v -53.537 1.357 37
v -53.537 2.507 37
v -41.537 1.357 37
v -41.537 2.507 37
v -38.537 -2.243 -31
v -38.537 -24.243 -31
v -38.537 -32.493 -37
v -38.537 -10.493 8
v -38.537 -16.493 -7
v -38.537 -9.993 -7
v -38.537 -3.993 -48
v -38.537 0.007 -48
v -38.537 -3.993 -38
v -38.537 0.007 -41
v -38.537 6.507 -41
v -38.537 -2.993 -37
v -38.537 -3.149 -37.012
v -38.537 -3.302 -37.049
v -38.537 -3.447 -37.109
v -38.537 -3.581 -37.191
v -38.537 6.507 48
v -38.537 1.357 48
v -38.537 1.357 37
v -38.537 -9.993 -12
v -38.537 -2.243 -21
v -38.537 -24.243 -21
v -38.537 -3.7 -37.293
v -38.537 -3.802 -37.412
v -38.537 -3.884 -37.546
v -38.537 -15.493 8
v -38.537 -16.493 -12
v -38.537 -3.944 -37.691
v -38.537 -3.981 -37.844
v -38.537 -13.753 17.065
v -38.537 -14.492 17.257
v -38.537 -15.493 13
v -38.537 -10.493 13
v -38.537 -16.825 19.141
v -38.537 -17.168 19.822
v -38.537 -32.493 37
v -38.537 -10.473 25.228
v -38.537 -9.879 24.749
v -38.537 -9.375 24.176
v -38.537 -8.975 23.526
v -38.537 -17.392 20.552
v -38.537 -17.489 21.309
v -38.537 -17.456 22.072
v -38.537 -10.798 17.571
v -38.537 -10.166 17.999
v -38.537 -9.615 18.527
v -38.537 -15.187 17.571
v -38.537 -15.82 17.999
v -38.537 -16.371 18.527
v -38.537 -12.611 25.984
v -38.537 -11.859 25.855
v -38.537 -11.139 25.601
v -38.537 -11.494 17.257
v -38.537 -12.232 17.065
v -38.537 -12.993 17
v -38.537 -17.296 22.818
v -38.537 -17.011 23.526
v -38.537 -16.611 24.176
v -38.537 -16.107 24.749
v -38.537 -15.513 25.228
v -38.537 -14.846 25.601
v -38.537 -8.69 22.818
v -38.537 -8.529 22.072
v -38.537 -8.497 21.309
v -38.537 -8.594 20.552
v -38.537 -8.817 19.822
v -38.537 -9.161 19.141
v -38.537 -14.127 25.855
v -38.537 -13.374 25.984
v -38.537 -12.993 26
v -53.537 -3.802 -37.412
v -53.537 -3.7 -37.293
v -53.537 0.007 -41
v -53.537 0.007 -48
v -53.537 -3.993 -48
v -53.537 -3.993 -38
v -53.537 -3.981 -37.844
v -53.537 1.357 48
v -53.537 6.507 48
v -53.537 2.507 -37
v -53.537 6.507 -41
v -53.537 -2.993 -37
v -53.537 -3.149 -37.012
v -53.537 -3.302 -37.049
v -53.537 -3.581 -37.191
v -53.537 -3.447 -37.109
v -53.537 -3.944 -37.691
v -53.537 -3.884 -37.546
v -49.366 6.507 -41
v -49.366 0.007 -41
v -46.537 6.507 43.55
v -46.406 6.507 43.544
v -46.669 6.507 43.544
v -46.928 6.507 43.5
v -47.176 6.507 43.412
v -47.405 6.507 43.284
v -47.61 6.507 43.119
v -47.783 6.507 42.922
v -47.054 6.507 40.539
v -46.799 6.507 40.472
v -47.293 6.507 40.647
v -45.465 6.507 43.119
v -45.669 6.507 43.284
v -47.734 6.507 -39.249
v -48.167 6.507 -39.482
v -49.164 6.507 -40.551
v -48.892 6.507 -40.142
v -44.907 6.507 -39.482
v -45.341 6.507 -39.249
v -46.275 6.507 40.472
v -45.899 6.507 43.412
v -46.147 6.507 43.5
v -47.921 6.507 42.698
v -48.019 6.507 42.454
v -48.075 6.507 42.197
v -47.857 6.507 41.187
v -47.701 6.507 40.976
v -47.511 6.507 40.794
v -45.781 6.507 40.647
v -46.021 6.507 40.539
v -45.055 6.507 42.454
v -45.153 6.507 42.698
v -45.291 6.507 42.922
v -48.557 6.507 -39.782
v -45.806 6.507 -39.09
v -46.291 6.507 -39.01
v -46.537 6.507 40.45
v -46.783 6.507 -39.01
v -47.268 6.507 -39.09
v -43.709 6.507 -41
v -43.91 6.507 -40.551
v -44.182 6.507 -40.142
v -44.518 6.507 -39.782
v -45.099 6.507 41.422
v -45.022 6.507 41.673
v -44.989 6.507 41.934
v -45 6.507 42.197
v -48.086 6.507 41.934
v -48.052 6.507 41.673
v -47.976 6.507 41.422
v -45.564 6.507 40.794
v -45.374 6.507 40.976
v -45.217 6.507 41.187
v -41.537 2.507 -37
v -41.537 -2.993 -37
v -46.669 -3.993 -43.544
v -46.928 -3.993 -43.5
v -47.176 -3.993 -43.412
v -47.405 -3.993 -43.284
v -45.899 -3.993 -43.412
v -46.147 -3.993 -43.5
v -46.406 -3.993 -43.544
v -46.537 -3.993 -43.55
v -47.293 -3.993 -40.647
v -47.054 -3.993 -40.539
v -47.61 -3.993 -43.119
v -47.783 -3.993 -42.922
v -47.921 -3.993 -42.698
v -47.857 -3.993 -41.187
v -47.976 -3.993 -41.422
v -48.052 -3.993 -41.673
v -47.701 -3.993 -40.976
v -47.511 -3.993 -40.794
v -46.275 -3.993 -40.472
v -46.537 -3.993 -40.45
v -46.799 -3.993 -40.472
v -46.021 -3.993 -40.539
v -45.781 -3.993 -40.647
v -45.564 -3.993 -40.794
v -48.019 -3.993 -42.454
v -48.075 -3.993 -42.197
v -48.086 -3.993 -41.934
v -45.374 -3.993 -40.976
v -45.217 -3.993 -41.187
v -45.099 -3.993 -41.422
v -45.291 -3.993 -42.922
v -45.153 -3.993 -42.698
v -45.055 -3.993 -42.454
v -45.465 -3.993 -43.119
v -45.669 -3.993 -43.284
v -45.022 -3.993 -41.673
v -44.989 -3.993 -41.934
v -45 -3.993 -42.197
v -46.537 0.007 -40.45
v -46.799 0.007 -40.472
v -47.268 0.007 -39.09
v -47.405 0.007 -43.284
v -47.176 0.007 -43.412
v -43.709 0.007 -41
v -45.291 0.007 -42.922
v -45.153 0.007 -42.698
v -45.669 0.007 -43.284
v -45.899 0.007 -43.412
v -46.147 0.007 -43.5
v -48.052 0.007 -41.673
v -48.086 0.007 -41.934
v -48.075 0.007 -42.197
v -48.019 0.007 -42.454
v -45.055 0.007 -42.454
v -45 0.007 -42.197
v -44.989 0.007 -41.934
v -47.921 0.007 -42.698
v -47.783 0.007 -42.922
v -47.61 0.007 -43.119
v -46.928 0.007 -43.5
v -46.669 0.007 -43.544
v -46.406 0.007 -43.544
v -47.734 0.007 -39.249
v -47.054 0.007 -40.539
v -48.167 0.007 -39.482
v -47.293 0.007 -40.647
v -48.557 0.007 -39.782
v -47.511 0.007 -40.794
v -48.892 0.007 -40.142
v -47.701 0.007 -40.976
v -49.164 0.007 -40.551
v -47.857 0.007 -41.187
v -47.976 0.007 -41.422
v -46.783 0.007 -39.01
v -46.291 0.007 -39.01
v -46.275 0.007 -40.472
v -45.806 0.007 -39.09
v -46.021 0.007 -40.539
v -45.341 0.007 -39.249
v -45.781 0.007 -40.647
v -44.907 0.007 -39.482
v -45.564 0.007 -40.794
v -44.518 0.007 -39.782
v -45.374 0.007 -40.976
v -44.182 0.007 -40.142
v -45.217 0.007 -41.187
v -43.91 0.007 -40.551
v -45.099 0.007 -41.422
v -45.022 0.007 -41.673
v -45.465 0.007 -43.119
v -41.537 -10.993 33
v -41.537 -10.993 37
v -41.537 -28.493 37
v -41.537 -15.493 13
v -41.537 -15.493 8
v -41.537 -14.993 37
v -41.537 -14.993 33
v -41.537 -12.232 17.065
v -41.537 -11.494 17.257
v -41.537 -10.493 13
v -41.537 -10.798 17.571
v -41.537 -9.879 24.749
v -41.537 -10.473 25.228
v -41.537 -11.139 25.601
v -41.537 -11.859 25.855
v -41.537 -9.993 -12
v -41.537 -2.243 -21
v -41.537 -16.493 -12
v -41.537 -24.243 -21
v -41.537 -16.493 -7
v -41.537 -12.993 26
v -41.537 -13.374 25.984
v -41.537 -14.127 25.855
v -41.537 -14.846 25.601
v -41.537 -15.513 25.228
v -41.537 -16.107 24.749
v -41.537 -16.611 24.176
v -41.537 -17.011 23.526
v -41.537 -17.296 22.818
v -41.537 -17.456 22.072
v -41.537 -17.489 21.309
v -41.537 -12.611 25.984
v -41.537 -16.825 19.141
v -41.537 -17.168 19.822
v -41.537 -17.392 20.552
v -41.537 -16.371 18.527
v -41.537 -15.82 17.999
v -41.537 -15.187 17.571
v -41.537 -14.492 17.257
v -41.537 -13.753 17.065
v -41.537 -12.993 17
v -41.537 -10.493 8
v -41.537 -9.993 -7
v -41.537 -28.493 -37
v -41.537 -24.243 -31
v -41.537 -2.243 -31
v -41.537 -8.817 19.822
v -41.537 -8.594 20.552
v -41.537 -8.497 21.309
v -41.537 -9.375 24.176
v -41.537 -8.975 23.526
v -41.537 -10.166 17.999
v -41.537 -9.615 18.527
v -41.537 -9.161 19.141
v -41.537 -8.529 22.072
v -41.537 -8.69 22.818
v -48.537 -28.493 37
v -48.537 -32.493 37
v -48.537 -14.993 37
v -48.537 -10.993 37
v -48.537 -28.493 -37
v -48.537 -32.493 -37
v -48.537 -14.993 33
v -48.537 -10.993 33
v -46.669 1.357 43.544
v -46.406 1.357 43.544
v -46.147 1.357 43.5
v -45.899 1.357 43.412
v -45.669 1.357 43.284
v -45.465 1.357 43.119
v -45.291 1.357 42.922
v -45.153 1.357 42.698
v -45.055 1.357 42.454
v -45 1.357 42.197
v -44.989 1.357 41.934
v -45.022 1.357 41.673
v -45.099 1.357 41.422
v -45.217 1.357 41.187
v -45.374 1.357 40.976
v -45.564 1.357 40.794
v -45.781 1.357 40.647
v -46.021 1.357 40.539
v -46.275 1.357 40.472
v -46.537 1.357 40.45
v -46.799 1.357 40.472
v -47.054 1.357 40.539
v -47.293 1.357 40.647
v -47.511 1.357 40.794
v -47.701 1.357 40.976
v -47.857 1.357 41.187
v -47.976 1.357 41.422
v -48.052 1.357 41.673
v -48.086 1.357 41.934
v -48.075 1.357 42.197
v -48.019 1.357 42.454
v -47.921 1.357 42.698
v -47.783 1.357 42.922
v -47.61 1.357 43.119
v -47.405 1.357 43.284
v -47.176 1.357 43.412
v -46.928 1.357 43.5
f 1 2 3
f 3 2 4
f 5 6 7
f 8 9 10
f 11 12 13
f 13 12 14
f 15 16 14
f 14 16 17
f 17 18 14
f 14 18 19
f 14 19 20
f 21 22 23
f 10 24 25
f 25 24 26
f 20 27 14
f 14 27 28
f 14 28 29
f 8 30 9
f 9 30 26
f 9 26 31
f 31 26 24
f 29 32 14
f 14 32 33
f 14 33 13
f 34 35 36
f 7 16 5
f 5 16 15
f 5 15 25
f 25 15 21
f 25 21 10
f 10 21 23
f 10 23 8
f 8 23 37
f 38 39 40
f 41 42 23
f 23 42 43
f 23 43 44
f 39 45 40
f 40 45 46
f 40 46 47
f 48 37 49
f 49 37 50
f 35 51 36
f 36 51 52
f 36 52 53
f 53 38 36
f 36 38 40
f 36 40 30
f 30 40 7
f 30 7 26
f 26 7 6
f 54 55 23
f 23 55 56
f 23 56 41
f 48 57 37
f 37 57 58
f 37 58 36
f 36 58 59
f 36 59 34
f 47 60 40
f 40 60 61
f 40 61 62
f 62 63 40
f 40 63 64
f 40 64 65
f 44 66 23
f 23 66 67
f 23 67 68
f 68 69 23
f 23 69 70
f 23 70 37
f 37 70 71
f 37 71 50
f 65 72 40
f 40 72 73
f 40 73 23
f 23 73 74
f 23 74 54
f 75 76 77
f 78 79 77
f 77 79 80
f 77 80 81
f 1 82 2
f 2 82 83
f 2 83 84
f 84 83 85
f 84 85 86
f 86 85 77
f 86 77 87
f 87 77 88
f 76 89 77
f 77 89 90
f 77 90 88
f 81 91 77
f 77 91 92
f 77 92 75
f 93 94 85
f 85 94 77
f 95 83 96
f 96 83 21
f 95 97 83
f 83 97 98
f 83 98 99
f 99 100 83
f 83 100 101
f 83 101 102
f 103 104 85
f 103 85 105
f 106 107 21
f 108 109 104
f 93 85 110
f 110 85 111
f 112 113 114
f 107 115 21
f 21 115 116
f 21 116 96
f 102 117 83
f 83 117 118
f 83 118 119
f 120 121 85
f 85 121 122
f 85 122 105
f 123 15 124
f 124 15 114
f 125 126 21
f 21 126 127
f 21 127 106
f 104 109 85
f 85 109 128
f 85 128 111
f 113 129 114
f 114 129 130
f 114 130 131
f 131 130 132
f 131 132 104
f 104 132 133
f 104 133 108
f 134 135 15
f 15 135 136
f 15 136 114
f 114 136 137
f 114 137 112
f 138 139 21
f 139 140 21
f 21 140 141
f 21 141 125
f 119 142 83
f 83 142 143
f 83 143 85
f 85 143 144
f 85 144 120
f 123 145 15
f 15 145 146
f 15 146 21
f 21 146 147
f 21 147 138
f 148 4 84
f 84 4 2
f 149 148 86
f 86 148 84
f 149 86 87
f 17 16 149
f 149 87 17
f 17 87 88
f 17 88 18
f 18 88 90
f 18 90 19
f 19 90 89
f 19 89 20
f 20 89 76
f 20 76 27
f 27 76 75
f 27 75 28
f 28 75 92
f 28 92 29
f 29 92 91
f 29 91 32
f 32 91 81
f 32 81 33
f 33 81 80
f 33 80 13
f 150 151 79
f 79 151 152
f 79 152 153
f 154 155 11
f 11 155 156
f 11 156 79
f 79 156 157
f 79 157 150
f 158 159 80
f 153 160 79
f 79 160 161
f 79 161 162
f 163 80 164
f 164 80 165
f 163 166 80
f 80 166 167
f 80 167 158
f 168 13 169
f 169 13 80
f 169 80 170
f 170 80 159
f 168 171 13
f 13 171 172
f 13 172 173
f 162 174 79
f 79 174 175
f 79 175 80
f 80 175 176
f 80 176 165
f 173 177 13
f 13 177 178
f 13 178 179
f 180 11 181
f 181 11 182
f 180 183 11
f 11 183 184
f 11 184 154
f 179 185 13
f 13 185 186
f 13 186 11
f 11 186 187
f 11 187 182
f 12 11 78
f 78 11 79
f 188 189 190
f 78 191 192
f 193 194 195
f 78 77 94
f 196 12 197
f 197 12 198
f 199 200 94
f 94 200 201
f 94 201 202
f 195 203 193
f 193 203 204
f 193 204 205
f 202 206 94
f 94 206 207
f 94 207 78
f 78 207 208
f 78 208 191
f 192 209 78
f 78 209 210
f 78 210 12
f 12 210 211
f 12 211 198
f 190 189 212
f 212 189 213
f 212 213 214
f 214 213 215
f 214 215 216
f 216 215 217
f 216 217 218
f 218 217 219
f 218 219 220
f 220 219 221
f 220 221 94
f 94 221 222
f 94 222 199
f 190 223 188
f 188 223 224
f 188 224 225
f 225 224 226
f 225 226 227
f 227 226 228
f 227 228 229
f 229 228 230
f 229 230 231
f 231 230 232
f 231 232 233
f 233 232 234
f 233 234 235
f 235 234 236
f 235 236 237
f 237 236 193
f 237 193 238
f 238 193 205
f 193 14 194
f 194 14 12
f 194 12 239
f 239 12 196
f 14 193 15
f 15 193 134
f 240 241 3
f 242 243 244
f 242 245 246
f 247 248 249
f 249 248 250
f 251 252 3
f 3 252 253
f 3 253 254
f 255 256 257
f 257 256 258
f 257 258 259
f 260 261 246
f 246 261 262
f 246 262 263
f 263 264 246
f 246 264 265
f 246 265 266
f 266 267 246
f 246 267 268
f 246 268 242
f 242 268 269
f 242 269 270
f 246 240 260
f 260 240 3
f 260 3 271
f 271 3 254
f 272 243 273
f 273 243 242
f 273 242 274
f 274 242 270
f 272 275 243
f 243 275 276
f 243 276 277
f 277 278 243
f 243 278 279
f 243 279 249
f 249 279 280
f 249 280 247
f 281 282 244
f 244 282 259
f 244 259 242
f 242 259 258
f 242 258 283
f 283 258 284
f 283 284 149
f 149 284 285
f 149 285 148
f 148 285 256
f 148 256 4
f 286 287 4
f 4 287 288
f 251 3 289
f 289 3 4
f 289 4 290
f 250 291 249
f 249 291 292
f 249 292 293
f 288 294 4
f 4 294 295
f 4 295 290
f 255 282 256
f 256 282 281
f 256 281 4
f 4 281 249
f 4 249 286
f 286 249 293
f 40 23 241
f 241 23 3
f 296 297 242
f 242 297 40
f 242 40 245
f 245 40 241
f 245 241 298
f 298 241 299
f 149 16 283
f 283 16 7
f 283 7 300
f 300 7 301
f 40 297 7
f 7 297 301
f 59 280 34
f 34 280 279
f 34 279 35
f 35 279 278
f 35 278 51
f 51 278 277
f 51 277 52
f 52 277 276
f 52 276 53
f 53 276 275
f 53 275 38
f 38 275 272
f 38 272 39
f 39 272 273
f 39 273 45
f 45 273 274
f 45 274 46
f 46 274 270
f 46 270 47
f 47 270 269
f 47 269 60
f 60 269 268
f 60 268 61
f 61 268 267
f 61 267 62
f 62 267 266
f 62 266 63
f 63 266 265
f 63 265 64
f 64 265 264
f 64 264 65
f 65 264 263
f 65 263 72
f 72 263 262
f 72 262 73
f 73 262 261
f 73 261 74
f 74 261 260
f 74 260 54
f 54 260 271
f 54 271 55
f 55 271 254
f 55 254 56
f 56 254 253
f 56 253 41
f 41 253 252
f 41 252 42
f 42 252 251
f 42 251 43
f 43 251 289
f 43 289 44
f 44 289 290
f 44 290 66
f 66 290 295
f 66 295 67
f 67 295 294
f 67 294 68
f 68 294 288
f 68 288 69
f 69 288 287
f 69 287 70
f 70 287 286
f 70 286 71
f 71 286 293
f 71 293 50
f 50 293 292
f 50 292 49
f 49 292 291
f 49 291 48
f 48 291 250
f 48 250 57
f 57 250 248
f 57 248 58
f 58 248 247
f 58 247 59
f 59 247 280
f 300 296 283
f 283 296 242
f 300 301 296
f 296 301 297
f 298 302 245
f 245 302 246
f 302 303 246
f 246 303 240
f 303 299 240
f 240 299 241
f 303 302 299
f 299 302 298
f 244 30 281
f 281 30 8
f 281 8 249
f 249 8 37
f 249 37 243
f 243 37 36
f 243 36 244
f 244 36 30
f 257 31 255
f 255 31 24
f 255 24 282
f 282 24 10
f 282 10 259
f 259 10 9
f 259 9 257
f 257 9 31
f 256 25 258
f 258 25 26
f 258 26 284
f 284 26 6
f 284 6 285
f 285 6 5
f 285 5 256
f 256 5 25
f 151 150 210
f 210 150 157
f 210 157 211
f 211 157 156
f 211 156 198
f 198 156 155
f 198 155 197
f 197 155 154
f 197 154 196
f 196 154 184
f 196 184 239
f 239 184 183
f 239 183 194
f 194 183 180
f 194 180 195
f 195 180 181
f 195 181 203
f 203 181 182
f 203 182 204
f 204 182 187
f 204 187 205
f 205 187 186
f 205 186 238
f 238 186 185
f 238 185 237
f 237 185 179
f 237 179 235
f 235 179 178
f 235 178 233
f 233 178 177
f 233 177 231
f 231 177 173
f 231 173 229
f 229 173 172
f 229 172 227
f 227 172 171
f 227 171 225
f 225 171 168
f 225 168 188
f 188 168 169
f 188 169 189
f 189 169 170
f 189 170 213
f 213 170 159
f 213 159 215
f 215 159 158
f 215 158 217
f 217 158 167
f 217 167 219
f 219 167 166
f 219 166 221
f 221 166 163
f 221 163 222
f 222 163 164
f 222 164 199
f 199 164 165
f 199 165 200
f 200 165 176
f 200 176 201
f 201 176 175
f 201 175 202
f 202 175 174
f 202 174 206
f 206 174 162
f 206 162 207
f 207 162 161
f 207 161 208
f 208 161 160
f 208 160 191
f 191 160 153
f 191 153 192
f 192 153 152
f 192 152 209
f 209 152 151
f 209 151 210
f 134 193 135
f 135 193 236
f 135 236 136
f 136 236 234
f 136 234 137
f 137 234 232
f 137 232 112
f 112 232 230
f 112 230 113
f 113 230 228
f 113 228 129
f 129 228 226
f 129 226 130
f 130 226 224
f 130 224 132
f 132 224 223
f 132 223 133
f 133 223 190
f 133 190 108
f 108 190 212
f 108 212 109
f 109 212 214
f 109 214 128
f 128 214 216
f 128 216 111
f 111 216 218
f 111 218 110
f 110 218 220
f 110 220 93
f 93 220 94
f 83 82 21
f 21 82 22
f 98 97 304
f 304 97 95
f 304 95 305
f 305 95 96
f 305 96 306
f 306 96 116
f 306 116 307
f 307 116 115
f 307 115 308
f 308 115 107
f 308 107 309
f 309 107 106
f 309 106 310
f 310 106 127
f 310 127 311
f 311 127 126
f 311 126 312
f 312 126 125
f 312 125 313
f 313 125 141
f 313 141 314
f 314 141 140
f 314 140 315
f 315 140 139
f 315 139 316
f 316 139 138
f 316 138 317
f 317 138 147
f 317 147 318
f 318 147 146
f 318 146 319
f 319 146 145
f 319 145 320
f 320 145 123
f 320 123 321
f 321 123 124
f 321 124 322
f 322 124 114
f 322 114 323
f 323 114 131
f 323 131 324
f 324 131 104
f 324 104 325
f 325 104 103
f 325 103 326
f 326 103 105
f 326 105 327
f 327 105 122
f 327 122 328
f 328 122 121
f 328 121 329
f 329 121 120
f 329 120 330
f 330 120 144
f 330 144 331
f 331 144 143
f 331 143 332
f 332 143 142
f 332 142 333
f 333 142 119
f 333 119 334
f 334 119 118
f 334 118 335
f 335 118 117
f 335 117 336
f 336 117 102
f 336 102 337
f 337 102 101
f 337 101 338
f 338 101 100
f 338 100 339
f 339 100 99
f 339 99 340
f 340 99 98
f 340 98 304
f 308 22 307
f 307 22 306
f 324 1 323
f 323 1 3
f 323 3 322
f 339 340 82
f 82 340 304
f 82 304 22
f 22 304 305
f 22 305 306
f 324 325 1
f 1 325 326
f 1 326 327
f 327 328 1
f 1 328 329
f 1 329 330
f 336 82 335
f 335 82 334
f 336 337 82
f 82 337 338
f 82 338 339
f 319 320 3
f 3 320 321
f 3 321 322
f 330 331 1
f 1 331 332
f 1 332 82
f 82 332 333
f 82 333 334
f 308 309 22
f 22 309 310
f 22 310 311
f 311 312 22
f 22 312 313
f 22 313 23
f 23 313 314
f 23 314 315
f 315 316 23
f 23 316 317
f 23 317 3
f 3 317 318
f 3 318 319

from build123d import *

# Parameters (mm, degrees)
EXTRUDE_START       = -12
EXTRUDE_1_DEPTH     = 12
SKETCH_2_R          = 4.5
EXTRUDE_2_DEPTH     = 3
SKETCH_3_W          = 74
SKETCH_3_H          = 4
SKETCH_3_W_2        = 4
EXTRUDE_3_DEPTH     = 7
SKETCH_4_W          = 5
SKETCH_4_H          = 6.5
SKETCH_4_H_2        = 5
SKETCH_4_W_2        = 10
SKETCH_4_H_3        = 22
CUT_EXTRUDE_1_DEPTH = 7
SKETCH_5_R          = 1.55
CUT_EXTRUDE_2_DEPTH = 7
SKETCH_6_R          = 3
CUT_EXTRUDE_4_DEPTH = 7
SKETCH_8_W          = 123.006467786
SKETCH_8_H          = 80.173858468
CUT_EXTRUDE_6_DEPTH = 15
SKETCH_11_R         = 1.55
EXTRUDE_5_DEPTH     = 5.15
CUT_EXTRUDE_8_REACH = 107.579
SKETCH_12_W         = 15.113452747
SKETCH_12_H         = 5.35


# Read off the part's stored shape, not the designer's step: 填料-伸長1
with BuildPart() as part:
    # 填料-伸長1 outline → 填料-伸長1 (new body)
    with BuildSketch(Plane.ZY.offset(65.537274581).offset(EXTRUDE_START)):
        with BuildLine():
            Line((41, 0.007142857), (41, 6.507142857))
            Line((41, 6.507142857), (-41, 6.507142857))
            Line((-41, 6.507142857), (-41, 0.007142857))
            Line((-41, 0.007142857), (-48, 0.007142857))
            Line((-48, 0.007142857), (-48, -3.992857143))
            Line((-48, -3.992857143), (-38, -3.992857143))
            ThreePointArc((-38, -3.992857143), (-37.292893219, -3.699963924), (-37, -2.992857143))
            Line((-37, -2.992857143), (-37, 2.507142857))
            Line((-37, 2.507142857), (37, 2.507142857))
            Line((37, 2.507142857), (37, -2.992857143))
            ThreePointArc((37, -2.992857143), (37.292893219, -3.699963924), (38, -3.992857143))
            Line((38, -3.992857143), (48, -3.992857143))
            Line((48, -3.992857143), (48, 0.007142857))
            Line((48, 0.007142857), (41, 0.007142857))
        make_face()
    extrude(amount=EXTRUDE_1_DEPTH)

    # 草圖2 → 填料-伸長2 (add)
    # profile 1 of 2: a face of its own
    with BuildSketch(Plane.ZY.offset(65.537274581)):
        Polygon((37, 2.507142857), (-37, 2.507142857), (-37, -2.992857143), (-37, -32.492857143), (37, -32.492857143), (37, -2.992857143), align=None)
        with Locations((21.5, -12.992857143)):
            Circle(SKETCH_2_R, mode=Mode.SUBTRACT)
    # profile 2 of 2: a face of its own
    with BuildSketch(Plane.ZY.offset(65.537274581)):
        with BuildLine():
            Line((41, 0.007142857), (41, 6.507142857))
            Line((41, 6.507142857), (-41, 6.507142857))
            Line((-41, 6.507142857), (-41, 0.007142857))
            Line((-41, 0.007142857), (-48, 0.007142857))
            Line((-48, 0.007142857), (-48, -3.992857143))
            Line((-48, -3.992857143), (-38, -3.992857143))
            ThreePointArc((-38, -3.992857143), (-37.292893219, -3.699963924), (-37, -2.992857143))
            Line((-37, -2.992857143), (-37, 2.507142857))
            Line((-37, 2.507142857), (37, 2.507142857))
            Line((37, 2.507142857), (37, -2.992857143))
            ThreePointArc((37, -2.992857143), (37.292893219, -3.699963924), (38, -3.992857143))
            Line((38, -3.992857143), (48, -3.992857143))
            Line((48, -3.992857143), (48, 0.007142857))
            Line((48, 0.007142857), (41, 0.007142857))
        make_face()
    extrude(amount=EXTRUDE_2_DEPTH)

    # 草圖3 → 填料-伸長3 (add)
    with BuildSketch(Plane(origin=(-65.537274581, 0, 0), x_dir=(0, 0, -1), z_dir=(1, 0, 0))):
        with Locations((0, -30.492857143)):
            Rectangle(SKETCH_3_W, SKETCH_3_H)
        with Locations((-35, -12.992857143)):
            Rectangle(SKETCH_3_W_2, SKETCH_3_H)
    extrude(amount=EXTRUDE_3_DEPTH)

    # 草圖4 → 除料-伸長1 (cut)
    with BuildSketch(Plane.ZY.offset(68.537274581)):
        with Locations((-9.5, -13.242857143)):
            Rectangle(SKETCH_4_W, SKETCH_4_H)
        with Locations((10.5, -12.992857143)):
            Rectangle(SKETCH_4_W, SKETCH_4_H_2)
        with Locations((-26, -13.242857143)):
            Rectangle(SKETCH_4_W_2, SKETCH_4_H_3)
    extrude(amount=-CUT_EXTRUDE_1_DEPTH, mode=Mode.SUBTRACT)

    # 草圖5 → 除料-伸長2 (cut)
    with BuildSketch(Plane(origin=(0, 0.007142857, 0), x_dir=(1, 0, 0), z_dir=(0, 1, 0))):
        with Locations(Location((-60.537274581, -42, 0), (0, 0, 40.17776954))):
            Circle(SKETCH_5_R)
        with Locations(Location((-60.537274581, 42, 0), (0, 0, 220.17776954))):
            Circle(SKETCH_5_R)
    extrude(amount=-CUT_EXTRUDE_2_DEPTH, mode=Mode.SUBTRACT)

    # 草圖6 → 除料-伸長4 (cut)
    with BuildSketch(Plane(origin=(0, 0.007142857, 0), x_dir=(1, 0, 0), z_dir=(0, 1, 0))):
        with Locations((-60.537274581, -42)):
            Circle(SKETCH_6_R)
        with Locations((-60.537274581, 42)):
            Circle(SKETCH_6_R)
    extrude(amount=CUT_EXTRUDE_4_DEPTH, mode=Mode.SUBTRACT)

    # 鏡射2: part across plane


with BuildPart() as part_1:
    add(part.part)
    add(part.part.mirror(Plane(origin=(-53.537274581, 0, 0), x_dir=(0, 0, 1), z_dir=(1, 0, 0))))

    # 草圖8 → 除料-伸長6 (cut)
    with BuildSketch(Plane(origin=(-53.537274581, 0, 0), x_dir=(0, 0, -1), z_dir=(1, 0, 0))):
        with Locations((-0.366090678, -13.819923092)):
            Rectangle(SKETCH_8_W, SKETCH_8_H)
    extrude(amount=-CUT_EXTRUDE_6_DEPTH, mode=Mode.SUBTRACT)

    # 草圖11 → 填料-伸長5 (add)
    with BuildSketch(Plane(origin=(0, 1.357142857, 0), x_dir=(-1, 0, 0), z_dir=(0, -1, 0))):
        with BuildLine():
            Line((53.537274581, -48), (53.537274581, -41))
            Line((53.537274581, -41), (49.365701705, -41))
            ThreePointArc((49.365701705, -41), (46.537274581, -39), (43.708847456, -41))
            Line((43.708847456, -41), (38.537274581, -41))
            Line((38.537274581, -41), (38.537274581, -48))
            Line((38.537274581, -48), (53.537274581, -48))
        make_face()
        with Locations(Location((46.537274581, -42, 0), (0, 0, 270))):
            Circle(SKETCH_11_R, mode=Mode.SUBTRACT)
    extrude(amount=-EXTRUDE_5_DEPTH)

    # 草圖12 → 除料-伸長8 (cut, up to next)
    with BuildSketch(Plane.XY.offset(37), mode=Mode.PRIVATE) as cut_extrude_8_sk1:
        with Locations((-46.094000955, -1.317857143)):
            Rectangle(SKETCH_12_W, SKETCH_12_H)
    cut_extrude_8_tool1 = extrude(cut_extrude_8_sk1.sketch, amount=CUT_EXTRUDE_8_REACH, mode=Mode.PRIVATE) & part_1.part
    add(cut_extrude_8_tool1.solids().sort_by_distance((-46.094001, -1.317857, 37))[0], mode=Mode.SUBTRACT)


solid = part_1.part
